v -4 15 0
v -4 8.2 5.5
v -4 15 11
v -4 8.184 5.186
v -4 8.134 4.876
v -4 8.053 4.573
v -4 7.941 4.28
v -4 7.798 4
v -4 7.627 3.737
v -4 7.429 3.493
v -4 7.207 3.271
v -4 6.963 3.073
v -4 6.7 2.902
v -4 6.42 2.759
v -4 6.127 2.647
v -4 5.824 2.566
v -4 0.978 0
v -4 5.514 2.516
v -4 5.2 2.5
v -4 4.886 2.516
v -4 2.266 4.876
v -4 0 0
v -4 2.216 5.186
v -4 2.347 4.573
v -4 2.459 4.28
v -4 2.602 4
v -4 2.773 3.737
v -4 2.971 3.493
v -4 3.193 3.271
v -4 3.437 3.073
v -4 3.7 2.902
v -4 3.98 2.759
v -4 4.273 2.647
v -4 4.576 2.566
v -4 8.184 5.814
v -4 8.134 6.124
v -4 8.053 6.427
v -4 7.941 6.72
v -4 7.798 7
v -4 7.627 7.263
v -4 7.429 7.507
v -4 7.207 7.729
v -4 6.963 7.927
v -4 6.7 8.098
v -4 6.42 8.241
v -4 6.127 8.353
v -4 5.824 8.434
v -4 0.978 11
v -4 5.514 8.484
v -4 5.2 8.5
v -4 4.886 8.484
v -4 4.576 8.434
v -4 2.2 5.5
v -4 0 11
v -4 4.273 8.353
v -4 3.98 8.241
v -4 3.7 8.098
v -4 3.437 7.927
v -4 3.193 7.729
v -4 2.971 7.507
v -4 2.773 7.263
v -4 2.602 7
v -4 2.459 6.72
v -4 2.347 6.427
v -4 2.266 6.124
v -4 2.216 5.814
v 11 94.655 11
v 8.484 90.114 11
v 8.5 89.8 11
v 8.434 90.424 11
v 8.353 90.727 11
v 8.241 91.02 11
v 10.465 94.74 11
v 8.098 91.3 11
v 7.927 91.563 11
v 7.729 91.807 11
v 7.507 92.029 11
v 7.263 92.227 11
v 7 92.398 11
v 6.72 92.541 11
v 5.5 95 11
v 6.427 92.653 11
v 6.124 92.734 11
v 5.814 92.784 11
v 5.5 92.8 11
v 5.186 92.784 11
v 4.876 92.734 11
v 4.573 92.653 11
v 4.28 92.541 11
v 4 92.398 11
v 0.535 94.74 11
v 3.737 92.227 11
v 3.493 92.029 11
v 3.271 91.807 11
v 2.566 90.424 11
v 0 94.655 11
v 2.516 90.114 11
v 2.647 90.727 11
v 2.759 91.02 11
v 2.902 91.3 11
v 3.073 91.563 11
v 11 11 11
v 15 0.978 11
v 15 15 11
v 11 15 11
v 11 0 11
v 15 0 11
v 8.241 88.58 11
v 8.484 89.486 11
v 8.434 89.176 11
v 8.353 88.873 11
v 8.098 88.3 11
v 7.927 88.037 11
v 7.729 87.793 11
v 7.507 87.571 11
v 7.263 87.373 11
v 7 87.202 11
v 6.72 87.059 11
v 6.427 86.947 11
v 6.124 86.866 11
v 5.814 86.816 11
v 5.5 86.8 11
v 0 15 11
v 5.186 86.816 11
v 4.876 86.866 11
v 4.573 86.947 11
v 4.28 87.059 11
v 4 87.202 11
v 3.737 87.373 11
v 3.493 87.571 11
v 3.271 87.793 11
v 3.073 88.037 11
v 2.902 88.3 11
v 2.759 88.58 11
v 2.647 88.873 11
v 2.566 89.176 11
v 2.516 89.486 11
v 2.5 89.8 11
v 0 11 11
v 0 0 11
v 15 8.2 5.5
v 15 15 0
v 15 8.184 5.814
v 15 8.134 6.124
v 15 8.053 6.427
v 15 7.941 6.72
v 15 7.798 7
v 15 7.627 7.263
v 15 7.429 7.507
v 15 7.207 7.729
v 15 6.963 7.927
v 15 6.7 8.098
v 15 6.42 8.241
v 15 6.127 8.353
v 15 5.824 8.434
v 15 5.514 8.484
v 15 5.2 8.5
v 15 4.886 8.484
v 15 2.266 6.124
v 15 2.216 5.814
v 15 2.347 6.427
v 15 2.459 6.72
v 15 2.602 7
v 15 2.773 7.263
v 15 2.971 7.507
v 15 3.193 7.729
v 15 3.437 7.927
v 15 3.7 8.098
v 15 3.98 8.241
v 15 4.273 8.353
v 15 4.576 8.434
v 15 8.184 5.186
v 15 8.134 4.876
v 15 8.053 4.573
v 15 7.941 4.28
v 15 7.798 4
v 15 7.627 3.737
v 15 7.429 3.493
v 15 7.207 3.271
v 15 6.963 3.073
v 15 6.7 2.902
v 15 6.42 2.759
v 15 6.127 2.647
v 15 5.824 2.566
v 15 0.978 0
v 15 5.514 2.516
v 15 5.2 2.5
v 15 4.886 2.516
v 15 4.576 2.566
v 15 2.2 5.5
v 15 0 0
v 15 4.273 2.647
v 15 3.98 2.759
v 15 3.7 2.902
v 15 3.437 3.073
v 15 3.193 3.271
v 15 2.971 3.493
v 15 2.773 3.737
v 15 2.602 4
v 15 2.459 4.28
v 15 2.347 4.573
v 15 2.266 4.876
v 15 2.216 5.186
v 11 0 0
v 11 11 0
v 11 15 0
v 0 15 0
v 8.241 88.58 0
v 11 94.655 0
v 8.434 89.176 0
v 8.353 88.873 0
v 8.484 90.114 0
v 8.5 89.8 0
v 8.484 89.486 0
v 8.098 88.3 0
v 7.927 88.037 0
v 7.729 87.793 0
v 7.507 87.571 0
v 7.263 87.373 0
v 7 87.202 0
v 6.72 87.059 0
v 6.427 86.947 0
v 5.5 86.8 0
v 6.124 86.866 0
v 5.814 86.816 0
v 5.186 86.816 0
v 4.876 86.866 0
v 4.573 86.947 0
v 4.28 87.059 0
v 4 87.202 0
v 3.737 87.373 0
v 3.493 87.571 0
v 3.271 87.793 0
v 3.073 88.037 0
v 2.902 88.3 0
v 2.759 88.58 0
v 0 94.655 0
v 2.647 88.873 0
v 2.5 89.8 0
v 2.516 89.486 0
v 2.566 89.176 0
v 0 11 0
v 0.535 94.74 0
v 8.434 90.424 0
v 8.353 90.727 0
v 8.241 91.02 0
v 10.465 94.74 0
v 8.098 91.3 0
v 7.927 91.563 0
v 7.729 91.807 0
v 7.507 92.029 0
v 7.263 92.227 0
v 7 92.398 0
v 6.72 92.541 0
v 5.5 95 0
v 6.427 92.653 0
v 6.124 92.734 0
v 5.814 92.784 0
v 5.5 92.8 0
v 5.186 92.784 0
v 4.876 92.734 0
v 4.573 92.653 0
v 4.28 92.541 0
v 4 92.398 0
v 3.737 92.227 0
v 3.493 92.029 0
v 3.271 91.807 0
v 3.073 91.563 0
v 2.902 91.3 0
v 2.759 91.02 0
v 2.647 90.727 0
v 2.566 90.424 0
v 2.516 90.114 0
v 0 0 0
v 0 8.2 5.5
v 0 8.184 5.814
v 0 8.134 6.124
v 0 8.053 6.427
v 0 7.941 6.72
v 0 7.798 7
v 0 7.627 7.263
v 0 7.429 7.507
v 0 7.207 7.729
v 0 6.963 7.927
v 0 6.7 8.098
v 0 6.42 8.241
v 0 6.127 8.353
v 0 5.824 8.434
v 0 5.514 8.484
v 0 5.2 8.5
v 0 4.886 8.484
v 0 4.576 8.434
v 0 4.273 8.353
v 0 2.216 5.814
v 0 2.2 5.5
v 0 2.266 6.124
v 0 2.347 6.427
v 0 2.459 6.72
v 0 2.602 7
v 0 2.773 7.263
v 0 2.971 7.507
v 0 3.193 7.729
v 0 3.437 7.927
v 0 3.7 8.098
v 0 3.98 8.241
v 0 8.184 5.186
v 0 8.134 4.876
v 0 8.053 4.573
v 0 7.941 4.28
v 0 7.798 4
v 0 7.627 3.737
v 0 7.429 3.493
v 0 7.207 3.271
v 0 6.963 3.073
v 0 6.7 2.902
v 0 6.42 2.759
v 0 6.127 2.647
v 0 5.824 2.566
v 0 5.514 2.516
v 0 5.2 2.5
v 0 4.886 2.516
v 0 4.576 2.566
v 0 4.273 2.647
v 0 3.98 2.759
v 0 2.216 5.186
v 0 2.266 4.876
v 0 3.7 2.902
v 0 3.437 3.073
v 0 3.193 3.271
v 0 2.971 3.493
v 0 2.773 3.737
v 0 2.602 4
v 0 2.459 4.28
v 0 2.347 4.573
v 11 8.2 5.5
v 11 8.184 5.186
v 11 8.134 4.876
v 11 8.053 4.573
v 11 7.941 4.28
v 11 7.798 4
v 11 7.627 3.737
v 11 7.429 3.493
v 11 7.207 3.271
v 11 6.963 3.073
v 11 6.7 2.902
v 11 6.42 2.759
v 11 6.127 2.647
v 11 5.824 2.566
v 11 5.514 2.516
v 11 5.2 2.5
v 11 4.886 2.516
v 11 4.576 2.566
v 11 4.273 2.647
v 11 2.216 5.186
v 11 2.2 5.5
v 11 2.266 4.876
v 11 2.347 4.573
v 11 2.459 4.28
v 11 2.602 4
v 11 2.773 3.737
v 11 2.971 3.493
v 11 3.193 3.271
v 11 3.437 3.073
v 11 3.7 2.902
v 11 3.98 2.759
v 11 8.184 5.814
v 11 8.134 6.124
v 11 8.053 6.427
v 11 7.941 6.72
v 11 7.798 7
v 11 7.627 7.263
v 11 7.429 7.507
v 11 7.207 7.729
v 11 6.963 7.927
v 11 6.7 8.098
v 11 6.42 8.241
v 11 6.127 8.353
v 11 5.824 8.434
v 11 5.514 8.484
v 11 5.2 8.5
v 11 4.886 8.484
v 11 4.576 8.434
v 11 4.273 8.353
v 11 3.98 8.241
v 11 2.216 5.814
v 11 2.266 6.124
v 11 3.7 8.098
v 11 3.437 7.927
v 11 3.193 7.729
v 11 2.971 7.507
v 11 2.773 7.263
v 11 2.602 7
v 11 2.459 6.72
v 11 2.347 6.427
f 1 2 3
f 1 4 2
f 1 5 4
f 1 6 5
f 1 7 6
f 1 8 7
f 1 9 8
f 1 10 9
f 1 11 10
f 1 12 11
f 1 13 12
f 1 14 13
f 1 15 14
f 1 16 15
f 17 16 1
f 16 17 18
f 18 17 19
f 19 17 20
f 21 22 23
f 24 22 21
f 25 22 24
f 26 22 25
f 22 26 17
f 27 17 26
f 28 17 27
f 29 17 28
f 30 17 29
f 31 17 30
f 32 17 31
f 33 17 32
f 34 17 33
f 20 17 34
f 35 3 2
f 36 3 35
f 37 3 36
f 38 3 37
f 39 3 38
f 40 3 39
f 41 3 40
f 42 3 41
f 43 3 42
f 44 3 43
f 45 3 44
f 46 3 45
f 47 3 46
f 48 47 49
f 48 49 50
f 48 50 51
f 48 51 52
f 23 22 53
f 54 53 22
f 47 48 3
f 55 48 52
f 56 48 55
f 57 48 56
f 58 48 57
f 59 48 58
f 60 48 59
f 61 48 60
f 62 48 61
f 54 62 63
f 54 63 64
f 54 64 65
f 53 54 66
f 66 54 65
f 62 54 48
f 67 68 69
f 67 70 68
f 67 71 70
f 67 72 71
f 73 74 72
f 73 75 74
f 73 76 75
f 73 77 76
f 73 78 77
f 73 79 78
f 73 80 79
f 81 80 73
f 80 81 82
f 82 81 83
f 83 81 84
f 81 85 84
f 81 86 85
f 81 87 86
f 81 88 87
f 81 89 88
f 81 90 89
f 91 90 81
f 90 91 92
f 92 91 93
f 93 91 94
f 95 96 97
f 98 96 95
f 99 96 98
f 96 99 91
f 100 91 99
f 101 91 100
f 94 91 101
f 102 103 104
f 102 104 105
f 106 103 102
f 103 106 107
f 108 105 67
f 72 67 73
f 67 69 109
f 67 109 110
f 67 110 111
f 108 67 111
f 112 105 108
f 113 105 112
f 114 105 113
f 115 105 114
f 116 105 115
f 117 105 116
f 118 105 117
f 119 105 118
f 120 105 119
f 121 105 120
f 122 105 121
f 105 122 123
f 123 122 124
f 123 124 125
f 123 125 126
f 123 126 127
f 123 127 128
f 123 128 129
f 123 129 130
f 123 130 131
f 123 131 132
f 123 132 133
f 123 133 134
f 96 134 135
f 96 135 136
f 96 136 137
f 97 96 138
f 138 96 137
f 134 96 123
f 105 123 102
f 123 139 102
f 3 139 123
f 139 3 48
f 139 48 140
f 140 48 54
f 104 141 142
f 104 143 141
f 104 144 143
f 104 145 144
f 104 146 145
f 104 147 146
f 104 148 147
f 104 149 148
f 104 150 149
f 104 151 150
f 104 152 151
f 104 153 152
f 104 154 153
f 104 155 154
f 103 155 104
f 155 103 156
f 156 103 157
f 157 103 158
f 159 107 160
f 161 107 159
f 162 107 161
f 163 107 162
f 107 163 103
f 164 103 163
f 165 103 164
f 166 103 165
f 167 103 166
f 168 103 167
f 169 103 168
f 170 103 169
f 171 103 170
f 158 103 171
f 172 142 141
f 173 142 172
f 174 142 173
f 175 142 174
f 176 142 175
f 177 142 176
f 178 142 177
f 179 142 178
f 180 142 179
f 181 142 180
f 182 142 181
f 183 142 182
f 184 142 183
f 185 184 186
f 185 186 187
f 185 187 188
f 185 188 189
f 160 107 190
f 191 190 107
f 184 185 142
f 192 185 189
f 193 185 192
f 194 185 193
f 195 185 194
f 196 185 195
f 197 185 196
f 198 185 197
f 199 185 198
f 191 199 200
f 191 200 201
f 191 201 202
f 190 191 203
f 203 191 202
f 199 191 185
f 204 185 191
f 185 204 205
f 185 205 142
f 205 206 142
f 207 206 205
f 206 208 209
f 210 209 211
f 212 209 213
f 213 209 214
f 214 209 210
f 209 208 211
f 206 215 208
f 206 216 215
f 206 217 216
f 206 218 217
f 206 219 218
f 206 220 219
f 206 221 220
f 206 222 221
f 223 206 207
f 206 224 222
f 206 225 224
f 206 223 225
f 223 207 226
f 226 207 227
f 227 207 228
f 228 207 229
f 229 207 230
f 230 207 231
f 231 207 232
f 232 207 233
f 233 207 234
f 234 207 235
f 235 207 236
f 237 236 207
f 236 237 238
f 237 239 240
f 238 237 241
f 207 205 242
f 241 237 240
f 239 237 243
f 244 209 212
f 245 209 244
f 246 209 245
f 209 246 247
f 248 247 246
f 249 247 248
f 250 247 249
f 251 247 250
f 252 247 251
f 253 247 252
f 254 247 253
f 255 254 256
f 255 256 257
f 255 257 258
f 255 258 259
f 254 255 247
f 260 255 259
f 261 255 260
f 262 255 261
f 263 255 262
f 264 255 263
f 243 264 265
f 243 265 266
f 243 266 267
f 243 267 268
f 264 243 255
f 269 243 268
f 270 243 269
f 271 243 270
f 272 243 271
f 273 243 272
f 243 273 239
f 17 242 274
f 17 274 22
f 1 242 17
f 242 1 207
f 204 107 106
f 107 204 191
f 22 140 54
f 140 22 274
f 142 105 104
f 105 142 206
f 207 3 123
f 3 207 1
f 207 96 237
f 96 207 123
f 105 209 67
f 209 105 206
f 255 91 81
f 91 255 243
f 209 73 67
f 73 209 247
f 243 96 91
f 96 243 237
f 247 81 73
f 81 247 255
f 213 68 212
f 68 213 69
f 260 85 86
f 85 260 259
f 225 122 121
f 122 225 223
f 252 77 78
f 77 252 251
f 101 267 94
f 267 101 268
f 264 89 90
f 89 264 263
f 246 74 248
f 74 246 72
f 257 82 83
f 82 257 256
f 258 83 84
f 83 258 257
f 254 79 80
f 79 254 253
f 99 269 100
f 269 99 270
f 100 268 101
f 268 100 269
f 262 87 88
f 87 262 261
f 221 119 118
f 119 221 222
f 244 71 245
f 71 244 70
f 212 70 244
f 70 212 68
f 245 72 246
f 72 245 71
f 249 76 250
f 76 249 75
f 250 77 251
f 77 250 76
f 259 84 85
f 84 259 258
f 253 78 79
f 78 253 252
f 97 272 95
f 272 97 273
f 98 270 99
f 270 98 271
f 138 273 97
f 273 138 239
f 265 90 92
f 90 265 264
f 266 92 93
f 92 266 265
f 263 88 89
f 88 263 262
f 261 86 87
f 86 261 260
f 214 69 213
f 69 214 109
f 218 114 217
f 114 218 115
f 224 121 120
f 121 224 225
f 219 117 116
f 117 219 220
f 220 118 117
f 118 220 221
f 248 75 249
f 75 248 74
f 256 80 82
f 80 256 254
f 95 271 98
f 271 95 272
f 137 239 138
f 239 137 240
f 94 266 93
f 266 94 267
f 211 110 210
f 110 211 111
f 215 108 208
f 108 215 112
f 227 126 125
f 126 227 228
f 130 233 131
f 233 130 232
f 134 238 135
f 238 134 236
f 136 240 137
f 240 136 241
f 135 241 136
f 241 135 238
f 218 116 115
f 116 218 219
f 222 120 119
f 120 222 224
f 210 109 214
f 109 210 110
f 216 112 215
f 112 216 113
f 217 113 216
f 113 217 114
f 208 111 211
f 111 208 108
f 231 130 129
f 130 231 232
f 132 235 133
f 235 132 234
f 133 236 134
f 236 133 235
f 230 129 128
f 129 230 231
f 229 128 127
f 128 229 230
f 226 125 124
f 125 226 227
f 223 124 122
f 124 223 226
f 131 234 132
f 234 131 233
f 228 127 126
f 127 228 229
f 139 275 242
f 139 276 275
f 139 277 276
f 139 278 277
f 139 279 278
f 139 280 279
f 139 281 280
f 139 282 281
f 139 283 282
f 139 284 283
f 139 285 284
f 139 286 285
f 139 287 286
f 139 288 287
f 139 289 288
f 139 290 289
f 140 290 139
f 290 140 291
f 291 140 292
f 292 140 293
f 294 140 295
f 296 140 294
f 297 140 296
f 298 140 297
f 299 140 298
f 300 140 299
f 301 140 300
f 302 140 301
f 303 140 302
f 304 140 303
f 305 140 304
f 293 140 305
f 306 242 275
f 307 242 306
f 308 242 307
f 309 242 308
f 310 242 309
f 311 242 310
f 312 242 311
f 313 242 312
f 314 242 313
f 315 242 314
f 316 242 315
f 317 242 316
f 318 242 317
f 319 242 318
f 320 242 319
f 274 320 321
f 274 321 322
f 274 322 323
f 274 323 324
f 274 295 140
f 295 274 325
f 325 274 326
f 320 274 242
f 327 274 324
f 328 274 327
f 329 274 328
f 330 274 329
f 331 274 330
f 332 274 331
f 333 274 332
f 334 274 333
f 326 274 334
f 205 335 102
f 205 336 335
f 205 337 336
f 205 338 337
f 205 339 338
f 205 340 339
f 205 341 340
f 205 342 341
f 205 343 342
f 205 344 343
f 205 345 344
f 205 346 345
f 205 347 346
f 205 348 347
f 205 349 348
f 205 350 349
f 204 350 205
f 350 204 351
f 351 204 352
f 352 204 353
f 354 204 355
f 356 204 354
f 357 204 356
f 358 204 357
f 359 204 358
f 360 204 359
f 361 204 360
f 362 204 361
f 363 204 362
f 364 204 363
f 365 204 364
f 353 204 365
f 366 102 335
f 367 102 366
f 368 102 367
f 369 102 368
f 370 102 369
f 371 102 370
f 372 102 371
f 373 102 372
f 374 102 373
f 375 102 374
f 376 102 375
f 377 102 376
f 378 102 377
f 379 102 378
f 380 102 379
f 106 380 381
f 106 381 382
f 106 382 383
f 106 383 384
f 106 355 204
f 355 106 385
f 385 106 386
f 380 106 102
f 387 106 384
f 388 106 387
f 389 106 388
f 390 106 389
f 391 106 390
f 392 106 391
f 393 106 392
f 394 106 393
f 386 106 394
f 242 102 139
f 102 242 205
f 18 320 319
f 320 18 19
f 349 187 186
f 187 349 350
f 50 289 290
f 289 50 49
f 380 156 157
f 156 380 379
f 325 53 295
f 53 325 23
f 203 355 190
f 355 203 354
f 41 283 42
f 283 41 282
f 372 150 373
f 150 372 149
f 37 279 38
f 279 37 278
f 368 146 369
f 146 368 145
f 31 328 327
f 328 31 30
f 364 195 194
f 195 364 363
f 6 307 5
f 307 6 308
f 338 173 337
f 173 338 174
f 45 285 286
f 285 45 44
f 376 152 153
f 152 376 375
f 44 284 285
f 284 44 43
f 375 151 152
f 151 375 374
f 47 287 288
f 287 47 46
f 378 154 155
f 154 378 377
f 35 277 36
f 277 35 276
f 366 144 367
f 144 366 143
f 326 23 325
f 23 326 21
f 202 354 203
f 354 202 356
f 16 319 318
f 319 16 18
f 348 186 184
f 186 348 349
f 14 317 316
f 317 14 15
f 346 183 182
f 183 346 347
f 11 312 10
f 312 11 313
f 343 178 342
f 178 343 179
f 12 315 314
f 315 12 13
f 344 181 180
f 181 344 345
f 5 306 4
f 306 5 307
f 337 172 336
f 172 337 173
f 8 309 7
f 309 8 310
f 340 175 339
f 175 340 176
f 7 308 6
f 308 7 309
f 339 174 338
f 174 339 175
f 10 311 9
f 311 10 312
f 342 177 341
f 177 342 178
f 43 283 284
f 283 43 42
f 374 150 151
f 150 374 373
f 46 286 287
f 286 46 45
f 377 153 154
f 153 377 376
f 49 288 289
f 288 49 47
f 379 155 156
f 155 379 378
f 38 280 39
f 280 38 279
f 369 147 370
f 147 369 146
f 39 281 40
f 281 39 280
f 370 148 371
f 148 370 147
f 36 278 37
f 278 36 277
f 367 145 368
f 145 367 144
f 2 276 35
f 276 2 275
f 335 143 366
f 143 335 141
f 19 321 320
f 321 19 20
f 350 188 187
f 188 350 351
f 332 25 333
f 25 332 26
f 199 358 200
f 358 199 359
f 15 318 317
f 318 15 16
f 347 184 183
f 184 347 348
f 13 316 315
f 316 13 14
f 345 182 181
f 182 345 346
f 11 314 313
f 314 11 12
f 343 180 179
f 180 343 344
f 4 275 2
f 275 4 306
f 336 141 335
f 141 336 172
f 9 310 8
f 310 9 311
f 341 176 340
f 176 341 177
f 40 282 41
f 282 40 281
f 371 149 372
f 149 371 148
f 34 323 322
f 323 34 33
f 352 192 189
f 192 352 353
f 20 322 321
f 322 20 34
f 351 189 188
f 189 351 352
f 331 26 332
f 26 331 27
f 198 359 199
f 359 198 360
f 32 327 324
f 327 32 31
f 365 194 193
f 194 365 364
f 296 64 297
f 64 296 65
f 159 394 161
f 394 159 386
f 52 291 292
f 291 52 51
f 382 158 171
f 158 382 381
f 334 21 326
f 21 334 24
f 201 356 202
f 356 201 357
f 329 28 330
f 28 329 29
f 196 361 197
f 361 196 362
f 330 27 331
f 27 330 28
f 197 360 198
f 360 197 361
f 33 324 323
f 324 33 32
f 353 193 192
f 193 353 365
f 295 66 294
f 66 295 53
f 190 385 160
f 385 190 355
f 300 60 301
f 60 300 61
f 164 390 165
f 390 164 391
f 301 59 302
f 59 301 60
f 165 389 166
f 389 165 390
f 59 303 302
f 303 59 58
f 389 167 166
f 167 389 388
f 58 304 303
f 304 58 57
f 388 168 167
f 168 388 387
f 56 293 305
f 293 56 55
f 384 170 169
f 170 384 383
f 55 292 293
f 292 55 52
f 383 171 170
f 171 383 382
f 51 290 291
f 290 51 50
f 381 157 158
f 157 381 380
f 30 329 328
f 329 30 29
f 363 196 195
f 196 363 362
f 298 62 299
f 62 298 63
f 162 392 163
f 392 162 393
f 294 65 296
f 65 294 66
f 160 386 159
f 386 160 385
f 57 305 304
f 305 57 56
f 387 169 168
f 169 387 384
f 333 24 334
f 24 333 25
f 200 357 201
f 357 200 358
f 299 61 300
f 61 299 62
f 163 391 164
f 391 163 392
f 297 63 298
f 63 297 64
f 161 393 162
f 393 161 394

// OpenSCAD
// Venice Biennale 2021 - Connector arm
// Francesco Anselmo
// francesco.anselmo@gmail.com


//Overall length
l=95;
//Width and high
wid=11; // [10:50]

//Radius of screw holes
r1=3; // [1.5:0.5:6]

//Hole direction
hole=0;// [0:vertical,1:horizontal]

/* [Hidden] */
t=4;
lochabstand=wid/5+r1;
$fn=60;
//Height
h=wid;

difference(){
    union(){
        translate([-t,0,0]) cube([wid+2*t,h+t,h]);
        cube([wid,l,h]);
    }
    cube([wid,h,h]);
    translate([-t-0.5,lochabstand,h/2]) rotate([0,90,0]) cylinder(r=r1,h=wid+2*t+1) ;
    if ( hole == 0){
           #translate([wid/2,l-lochabstand,0]) rotate([0,0,0]) cylinder(r=r1,h=h) ;
         //abgerundet
    difference(){
    translate([wid/2,l/2,-0.5]) cylinder(r=l,h=h+1) ;
    translate([wid/2,l/2,-0.5]) cylinder(r=l/2,h=h+1) ;
    translate([-t,-10,0]) cube([wid+2*t,l,h]) ;    
        }
    } else {
           #translate([0,l-lochabstand,h/2]) rotate([0,90,0]) cylinder(r=r1,h=h) ;
         //abgerundet
   translate([0,0,h]) rotate([0,90,0]) difference(){
    translate([wid/2,l/2,-0.5]) cylinder(r=l,h=h+1) ;
    translate([wid/2,l/2,-0.5]) cylinder(r=l/2,h=h+1) ;
    translate([-t,-10,0]) cube([wid+2*t,l,h]) ;    
        }
    }
    
   
}

module cap(){
kn=6;
difference(){
    union(){
  translate([0,-15,0]) cylinder(r=5.7,h=kn,$fn=30) ;
  translate([-5,-20,0]) cube([10,10,kn]) ;
          translate([0,-22,0]) rotate([0,0,45]) cube([10,10,kn]) ;
    }
        translate([0,-15,kn-3.2]) cylinder(r=4,h=3.2,$fn=6) ;
  translate([0,-15,0]) cylinder(r=2.2,h=kn,$fn=30) ;
}
}
